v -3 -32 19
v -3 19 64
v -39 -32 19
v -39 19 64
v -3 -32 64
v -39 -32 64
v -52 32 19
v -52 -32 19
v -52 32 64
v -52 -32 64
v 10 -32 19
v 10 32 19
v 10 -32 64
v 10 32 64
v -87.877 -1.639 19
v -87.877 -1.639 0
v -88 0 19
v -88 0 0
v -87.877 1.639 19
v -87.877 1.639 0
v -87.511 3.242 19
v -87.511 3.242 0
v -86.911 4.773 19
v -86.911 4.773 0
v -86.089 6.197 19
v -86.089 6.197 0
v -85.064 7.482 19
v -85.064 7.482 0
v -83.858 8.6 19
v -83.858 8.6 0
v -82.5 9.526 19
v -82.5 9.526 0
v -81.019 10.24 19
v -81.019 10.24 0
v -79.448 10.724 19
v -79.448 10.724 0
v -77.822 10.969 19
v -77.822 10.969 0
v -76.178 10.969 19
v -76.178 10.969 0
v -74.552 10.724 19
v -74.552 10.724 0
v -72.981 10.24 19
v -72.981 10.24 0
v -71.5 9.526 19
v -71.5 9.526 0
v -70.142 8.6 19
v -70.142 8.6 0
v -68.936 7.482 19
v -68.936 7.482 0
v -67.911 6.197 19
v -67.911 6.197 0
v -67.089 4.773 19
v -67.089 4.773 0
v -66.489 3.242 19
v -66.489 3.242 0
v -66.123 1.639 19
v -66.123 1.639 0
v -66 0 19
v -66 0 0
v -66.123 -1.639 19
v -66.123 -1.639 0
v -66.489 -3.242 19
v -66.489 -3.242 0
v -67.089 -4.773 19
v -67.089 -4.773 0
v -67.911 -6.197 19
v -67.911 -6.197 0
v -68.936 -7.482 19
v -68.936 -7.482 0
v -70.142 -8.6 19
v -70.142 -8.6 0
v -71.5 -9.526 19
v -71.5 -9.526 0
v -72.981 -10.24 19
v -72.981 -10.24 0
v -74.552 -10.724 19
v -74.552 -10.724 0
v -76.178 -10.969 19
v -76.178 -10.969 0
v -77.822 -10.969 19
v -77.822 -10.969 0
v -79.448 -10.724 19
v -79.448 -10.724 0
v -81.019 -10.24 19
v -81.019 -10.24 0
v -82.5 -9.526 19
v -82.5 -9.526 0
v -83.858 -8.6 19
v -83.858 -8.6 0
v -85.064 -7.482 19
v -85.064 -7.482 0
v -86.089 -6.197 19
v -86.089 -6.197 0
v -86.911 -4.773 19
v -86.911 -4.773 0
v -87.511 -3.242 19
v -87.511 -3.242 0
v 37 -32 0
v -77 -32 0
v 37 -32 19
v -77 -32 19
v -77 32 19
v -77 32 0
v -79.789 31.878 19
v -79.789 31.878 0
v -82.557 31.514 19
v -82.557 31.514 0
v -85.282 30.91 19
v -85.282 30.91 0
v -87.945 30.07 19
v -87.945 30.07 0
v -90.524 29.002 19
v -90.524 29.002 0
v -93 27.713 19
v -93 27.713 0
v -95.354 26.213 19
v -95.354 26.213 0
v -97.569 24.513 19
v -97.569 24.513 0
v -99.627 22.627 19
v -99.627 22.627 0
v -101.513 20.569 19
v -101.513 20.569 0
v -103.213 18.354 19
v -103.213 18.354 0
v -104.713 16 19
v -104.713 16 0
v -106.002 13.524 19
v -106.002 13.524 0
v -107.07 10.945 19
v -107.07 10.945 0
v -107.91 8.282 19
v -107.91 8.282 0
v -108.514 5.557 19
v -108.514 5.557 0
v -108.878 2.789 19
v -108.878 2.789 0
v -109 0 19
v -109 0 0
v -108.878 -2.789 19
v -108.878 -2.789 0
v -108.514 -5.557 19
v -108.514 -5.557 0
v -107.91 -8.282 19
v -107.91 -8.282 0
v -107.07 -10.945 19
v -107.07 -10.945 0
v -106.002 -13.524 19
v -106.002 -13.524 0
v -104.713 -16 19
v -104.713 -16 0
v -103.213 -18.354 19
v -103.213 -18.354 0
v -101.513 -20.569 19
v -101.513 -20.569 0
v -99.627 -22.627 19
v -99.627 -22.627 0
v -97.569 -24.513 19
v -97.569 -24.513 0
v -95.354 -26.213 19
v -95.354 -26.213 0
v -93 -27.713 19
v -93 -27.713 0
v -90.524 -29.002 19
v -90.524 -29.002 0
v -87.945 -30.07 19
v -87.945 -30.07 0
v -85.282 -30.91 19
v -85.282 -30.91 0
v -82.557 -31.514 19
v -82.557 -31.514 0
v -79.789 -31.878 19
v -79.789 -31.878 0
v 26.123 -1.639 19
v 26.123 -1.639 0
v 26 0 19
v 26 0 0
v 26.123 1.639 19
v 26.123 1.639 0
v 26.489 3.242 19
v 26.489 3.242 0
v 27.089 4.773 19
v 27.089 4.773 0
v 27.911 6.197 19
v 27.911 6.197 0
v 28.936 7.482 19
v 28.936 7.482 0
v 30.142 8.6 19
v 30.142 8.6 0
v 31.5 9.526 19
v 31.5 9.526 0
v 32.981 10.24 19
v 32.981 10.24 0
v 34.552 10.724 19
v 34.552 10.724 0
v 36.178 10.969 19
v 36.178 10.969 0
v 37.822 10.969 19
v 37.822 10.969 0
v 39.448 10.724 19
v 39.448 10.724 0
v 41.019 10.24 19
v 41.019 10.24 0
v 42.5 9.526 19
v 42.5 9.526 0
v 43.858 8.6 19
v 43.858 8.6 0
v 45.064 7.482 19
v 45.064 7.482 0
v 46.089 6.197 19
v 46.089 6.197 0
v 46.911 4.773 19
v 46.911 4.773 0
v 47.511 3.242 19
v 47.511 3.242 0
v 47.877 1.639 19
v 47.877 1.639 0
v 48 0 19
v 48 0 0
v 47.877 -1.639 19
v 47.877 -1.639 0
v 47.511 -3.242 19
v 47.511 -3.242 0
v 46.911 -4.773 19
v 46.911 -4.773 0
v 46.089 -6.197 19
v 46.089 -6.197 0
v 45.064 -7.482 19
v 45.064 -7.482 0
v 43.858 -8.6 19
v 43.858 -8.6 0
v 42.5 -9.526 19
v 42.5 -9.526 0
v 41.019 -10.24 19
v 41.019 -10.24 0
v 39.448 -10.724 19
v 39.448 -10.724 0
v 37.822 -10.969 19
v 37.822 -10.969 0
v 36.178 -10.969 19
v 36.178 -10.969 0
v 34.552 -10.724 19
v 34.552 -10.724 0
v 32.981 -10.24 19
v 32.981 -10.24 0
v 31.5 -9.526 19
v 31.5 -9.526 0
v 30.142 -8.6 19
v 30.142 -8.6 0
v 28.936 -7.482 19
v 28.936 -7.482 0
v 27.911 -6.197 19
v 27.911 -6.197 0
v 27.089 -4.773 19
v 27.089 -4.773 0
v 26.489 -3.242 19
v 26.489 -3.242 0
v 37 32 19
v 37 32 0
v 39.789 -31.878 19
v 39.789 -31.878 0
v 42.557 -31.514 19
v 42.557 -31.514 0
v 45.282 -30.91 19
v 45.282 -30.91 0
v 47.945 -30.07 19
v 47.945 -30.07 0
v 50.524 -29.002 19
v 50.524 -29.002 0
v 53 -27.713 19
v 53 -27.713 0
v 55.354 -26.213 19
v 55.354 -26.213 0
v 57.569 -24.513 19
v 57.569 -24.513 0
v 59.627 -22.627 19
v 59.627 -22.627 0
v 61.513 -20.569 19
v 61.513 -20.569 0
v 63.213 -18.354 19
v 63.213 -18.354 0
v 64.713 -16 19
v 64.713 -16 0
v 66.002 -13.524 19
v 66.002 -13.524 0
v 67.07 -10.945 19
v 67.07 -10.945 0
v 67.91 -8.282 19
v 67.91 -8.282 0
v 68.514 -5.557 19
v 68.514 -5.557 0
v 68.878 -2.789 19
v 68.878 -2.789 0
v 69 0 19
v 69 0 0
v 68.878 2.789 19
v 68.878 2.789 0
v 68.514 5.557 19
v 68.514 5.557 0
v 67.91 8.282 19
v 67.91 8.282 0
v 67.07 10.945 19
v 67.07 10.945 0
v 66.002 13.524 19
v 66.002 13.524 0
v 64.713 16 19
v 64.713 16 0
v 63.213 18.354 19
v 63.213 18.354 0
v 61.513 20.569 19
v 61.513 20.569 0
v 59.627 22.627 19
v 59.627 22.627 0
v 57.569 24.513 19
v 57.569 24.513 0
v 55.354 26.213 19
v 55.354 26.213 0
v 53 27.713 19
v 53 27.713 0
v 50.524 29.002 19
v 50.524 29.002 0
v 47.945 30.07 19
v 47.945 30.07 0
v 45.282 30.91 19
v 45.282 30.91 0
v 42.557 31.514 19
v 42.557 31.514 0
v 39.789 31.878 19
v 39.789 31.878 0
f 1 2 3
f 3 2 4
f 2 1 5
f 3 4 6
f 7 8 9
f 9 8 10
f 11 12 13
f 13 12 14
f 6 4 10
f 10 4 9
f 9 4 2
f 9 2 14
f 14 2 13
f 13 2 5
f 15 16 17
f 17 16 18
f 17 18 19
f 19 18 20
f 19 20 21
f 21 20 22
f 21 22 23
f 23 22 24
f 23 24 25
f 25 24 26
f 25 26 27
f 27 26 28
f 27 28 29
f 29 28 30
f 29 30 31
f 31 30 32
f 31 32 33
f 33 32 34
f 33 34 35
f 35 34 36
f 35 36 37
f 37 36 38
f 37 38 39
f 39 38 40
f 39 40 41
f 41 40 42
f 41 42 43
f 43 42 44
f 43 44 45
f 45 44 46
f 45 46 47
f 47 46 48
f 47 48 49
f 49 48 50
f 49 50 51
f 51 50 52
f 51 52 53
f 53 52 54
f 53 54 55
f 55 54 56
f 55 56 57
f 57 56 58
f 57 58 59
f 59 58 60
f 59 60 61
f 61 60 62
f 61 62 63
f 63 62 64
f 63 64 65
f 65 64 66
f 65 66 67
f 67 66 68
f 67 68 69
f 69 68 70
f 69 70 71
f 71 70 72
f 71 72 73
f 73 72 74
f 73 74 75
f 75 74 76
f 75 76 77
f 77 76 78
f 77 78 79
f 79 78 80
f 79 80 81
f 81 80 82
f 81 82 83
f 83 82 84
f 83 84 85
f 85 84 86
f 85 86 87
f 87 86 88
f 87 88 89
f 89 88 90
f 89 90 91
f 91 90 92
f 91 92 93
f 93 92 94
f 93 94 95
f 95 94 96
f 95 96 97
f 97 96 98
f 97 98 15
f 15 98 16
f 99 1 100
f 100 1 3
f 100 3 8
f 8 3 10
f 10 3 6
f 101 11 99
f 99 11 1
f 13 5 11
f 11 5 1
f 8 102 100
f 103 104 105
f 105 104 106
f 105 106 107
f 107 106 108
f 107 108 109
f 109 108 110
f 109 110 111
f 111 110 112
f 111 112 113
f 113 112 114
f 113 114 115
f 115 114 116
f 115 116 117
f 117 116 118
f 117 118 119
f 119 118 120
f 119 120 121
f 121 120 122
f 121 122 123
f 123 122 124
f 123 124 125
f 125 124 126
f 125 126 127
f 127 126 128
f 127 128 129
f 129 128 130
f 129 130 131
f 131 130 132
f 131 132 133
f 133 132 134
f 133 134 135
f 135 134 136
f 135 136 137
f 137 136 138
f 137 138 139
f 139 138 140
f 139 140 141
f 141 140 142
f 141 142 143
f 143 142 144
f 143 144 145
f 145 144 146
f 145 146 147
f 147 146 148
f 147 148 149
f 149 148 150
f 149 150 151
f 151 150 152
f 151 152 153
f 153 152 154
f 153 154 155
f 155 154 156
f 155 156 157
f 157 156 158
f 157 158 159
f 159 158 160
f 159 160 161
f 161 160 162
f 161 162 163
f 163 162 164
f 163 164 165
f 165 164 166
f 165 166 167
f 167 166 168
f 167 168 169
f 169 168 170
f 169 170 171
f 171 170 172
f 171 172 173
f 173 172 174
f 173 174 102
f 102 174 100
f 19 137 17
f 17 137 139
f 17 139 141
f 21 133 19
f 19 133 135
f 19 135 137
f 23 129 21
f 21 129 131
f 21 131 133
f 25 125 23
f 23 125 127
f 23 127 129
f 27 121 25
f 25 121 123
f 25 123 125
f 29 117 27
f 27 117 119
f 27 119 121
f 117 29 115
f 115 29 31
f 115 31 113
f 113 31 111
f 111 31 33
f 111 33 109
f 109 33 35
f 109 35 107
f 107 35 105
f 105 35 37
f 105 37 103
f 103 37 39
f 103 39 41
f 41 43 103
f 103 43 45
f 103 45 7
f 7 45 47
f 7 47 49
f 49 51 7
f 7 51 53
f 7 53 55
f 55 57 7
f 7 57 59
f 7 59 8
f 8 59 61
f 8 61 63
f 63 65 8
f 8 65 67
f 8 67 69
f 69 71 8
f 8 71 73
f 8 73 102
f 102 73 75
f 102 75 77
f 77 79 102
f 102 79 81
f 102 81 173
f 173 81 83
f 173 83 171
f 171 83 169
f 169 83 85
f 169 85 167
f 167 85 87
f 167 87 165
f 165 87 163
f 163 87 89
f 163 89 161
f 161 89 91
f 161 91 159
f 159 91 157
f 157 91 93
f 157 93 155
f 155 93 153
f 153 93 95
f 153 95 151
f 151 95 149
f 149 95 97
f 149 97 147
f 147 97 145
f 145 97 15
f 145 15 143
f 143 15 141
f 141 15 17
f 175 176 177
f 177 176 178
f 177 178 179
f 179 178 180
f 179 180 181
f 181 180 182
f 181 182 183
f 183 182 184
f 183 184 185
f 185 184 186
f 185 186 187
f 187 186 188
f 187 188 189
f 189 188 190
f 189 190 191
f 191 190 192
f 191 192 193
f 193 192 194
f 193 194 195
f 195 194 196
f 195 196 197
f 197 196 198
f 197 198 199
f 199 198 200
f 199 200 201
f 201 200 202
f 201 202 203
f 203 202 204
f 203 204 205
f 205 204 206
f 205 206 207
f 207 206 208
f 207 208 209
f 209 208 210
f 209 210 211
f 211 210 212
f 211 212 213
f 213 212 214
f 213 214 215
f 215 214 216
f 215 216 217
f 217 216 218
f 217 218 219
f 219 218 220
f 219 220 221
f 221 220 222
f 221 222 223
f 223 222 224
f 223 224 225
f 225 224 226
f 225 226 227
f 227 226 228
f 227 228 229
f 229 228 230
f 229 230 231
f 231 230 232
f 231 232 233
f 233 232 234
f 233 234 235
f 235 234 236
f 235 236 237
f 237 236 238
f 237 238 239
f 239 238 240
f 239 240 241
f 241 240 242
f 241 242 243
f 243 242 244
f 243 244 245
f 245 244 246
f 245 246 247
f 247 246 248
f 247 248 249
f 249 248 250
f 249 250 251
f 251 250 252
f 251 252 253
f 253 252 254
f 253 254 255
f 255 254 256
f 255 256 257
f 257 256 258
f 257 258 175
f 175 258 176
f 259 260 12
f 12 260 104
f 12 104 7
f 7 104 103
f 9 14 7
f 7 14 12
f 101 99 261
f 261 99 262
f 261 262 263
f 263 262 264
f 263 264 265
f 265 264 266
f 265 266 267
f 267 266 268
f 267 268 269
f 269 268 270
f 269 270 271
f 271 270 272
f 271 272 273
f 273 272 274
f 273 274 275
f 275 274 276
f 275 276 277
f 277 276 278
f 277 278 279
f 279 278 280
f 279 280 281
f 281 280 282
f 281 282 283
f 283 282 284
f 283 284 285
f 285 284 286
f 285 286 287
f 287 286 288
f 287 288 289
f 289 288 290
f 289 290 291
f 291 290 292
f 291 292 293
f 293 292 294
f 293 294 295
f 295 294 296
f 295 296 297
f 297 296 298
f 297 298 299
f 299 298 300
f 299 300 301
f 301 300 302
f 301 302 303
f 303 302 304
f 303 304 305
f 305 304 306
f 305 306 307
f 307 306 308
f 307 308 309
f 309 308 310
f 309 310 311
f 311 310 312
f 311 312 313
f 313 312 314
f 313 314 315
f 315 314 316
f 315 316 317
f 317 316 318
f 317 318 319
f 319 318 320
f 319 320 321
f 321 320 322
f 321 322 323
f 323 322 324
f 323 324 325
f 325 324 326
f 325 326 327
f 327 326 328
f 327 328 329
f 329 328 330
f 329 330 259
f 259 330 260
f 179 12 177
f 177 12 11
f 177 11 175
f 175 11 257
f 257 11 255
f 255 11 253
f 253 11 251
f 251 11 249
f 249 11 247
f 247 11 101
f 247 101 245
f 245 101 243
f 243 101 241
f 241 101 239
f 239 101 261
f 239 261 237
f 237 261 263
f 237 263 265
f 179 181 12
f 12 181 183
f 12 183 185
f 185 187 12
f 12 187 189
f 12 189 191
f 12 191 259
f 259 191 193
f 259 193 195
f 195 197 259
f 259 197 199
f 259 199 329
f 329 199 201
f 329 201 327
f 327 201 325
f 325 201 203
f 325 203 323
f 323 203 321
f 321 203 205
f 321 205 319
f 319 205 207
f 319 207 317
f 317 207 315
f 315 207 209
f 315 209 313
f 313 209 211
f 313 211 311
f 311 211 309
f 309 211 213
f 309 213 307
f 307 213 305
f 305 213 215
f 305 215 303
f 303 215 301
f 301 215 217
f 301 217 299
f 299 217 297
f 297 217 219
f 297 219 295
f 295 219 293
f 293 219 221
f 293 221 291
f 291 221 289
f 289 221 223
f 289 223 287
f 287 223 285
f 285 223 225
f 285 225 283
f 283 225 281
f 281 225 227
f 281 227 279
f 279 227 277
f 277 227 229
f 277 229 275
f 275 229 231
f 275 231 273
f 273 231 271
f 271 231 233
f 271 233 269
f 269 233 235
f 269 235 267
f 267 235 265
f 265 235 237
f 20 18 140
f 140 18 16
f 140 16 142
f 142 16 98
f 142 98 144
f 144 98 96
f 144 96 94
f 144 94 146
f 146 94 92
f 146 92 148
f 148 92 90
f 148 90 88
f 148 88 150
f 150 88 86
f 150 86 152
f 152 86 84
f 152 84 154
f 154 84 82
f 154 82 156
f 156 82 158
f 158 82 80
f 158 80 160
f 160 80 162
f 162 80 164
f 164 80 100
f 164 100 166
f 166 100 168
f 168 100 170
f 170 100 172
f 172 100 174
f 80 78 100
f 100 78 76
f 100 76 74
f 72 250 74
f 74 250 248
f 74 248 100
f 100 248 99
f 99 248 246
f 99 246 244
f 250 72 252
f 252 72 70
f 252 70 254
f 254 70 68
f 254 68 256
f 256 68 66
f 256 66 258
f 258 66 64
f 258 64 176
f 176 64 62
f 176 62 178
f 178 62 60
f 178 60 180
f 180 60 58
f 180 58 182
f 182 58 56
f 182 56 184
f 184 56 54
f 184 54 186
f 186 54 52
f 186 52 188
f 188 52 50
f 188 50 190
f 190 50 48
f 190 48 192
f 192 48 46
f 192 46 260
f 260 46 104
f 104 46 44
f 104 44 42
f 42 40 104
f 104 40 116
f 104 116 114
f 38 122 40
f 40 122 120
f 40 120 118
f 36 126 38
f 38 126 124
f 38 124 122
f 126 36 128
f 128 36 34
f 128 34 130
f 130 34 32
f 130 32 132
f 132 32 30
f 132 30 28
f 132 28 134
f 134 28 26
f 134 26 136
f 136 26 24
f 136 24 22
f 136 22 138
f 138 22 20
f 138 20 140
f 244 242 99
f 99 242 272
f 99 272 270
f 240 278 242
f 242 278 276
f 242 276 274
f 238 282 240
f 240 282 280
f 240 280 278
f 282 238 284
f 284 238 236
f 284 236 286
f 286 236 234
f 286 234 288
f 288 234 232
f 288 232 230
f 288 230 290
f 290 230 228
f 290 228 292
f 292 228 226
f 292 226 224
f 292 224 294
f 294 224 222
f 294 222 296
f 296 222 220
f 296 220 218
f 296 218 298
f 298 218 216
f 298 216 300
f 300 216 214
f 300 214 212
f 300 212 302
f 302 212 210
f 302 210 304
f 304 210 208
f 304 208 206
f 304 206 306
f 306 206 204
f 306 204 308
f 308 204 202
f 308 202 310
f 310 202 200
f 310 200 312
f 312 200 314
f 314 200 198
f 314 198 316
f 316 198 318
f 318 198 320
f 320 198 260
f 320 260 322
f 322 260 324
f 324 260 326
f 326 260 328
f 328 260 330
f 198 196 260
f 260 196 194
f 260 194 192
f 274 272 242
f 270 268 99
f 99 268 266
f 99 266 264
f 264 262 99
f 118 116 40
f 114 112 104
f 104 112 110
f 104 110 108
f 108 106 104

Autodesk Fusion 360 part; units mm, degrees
sketch "BaseSketch" plane through (0, 0, 0) normal (0, 0, 1) x (1, 0, 0)
  line L0 (-77, -32) -> (37, -32)
  arc A0 (37, -32) -> (37, 32) centre (37, 0) ccw
  line L1 (37, 32) -> (-77, 32)
  arc A1 (-77, 32) -> (-77, -32) centre (-77, 0) ccw
  line L2 (-77, 0) -> (37, 0) construction
  circle A2 centre (-77, 0) radius 11
  circle A3 centre (37, 0) radius 11
  line L3 (-77, 0) -> (-52, 0) construction
  line L4 (-52, 32) -> (10, 32) construction
  line L5 (10, 32) -> (10, -32)
  line L6 (10, -32) -> (-52, -32) construction
  line L7 (-52, -32) -> (-52, 32)
  line L8 (-39, -32) -> (-39, 19)
  line L9 (-39, 19) -> (-3, 19)
  line L10 (-3, 19) -> (-3, -32)
  dimension "d2" = 64
  dimension "d3" = 22
  dimension "d4" = 22
  dimension "d5" = 25
  dimension "d6" = 62
  dimension "d7" = 13
extrude "Extrude1" add sketch "BaseSketch" along normal blind 19 contours L0 L1 A1 L7 | L0 A0 L1 L5 makes body 1 at (15.3333, 0, 0) makes body 2 at (-66.8333, 24.5088, 0)
extrude "Extrude2" add sketch "BaseSketch" along normal blind 64 contours L0 L1 L5 L7 L8 L9 L10 bodies 1 2
extrude "Extrude3" add sketch "BaseSketch" along normal blind 19 contours L0 L8 L9 L10 bodies 1
sketch "TriangleSketch" plane through (0, 0, 0) normal (1, 0, 0) x (0, 1, 0)
  line L0 (32, 0) -> (19, 0)
  line L1 (19, 0) -> (-32, 0)
  line L2 (19, 0) -> (-32, 0)
  line L3 (-32, 0) -> (-32, 19)
  line L4 (-32, 19) -> (19, 19)
  line L5 (19, 19) -> (19, 0)
  line L6 (19, 19) -> (19, 64)
  line L7 (19, 64) -> (-32, 19)
  dimension "d14" = 13
  dimension "d15" = 51
  dimension "d16" = 19
extrude "Extrude4" add sketch "TriangleSketch" against normal blind 36 from surface at -3 contours L4 L6 L7 bodies 1
